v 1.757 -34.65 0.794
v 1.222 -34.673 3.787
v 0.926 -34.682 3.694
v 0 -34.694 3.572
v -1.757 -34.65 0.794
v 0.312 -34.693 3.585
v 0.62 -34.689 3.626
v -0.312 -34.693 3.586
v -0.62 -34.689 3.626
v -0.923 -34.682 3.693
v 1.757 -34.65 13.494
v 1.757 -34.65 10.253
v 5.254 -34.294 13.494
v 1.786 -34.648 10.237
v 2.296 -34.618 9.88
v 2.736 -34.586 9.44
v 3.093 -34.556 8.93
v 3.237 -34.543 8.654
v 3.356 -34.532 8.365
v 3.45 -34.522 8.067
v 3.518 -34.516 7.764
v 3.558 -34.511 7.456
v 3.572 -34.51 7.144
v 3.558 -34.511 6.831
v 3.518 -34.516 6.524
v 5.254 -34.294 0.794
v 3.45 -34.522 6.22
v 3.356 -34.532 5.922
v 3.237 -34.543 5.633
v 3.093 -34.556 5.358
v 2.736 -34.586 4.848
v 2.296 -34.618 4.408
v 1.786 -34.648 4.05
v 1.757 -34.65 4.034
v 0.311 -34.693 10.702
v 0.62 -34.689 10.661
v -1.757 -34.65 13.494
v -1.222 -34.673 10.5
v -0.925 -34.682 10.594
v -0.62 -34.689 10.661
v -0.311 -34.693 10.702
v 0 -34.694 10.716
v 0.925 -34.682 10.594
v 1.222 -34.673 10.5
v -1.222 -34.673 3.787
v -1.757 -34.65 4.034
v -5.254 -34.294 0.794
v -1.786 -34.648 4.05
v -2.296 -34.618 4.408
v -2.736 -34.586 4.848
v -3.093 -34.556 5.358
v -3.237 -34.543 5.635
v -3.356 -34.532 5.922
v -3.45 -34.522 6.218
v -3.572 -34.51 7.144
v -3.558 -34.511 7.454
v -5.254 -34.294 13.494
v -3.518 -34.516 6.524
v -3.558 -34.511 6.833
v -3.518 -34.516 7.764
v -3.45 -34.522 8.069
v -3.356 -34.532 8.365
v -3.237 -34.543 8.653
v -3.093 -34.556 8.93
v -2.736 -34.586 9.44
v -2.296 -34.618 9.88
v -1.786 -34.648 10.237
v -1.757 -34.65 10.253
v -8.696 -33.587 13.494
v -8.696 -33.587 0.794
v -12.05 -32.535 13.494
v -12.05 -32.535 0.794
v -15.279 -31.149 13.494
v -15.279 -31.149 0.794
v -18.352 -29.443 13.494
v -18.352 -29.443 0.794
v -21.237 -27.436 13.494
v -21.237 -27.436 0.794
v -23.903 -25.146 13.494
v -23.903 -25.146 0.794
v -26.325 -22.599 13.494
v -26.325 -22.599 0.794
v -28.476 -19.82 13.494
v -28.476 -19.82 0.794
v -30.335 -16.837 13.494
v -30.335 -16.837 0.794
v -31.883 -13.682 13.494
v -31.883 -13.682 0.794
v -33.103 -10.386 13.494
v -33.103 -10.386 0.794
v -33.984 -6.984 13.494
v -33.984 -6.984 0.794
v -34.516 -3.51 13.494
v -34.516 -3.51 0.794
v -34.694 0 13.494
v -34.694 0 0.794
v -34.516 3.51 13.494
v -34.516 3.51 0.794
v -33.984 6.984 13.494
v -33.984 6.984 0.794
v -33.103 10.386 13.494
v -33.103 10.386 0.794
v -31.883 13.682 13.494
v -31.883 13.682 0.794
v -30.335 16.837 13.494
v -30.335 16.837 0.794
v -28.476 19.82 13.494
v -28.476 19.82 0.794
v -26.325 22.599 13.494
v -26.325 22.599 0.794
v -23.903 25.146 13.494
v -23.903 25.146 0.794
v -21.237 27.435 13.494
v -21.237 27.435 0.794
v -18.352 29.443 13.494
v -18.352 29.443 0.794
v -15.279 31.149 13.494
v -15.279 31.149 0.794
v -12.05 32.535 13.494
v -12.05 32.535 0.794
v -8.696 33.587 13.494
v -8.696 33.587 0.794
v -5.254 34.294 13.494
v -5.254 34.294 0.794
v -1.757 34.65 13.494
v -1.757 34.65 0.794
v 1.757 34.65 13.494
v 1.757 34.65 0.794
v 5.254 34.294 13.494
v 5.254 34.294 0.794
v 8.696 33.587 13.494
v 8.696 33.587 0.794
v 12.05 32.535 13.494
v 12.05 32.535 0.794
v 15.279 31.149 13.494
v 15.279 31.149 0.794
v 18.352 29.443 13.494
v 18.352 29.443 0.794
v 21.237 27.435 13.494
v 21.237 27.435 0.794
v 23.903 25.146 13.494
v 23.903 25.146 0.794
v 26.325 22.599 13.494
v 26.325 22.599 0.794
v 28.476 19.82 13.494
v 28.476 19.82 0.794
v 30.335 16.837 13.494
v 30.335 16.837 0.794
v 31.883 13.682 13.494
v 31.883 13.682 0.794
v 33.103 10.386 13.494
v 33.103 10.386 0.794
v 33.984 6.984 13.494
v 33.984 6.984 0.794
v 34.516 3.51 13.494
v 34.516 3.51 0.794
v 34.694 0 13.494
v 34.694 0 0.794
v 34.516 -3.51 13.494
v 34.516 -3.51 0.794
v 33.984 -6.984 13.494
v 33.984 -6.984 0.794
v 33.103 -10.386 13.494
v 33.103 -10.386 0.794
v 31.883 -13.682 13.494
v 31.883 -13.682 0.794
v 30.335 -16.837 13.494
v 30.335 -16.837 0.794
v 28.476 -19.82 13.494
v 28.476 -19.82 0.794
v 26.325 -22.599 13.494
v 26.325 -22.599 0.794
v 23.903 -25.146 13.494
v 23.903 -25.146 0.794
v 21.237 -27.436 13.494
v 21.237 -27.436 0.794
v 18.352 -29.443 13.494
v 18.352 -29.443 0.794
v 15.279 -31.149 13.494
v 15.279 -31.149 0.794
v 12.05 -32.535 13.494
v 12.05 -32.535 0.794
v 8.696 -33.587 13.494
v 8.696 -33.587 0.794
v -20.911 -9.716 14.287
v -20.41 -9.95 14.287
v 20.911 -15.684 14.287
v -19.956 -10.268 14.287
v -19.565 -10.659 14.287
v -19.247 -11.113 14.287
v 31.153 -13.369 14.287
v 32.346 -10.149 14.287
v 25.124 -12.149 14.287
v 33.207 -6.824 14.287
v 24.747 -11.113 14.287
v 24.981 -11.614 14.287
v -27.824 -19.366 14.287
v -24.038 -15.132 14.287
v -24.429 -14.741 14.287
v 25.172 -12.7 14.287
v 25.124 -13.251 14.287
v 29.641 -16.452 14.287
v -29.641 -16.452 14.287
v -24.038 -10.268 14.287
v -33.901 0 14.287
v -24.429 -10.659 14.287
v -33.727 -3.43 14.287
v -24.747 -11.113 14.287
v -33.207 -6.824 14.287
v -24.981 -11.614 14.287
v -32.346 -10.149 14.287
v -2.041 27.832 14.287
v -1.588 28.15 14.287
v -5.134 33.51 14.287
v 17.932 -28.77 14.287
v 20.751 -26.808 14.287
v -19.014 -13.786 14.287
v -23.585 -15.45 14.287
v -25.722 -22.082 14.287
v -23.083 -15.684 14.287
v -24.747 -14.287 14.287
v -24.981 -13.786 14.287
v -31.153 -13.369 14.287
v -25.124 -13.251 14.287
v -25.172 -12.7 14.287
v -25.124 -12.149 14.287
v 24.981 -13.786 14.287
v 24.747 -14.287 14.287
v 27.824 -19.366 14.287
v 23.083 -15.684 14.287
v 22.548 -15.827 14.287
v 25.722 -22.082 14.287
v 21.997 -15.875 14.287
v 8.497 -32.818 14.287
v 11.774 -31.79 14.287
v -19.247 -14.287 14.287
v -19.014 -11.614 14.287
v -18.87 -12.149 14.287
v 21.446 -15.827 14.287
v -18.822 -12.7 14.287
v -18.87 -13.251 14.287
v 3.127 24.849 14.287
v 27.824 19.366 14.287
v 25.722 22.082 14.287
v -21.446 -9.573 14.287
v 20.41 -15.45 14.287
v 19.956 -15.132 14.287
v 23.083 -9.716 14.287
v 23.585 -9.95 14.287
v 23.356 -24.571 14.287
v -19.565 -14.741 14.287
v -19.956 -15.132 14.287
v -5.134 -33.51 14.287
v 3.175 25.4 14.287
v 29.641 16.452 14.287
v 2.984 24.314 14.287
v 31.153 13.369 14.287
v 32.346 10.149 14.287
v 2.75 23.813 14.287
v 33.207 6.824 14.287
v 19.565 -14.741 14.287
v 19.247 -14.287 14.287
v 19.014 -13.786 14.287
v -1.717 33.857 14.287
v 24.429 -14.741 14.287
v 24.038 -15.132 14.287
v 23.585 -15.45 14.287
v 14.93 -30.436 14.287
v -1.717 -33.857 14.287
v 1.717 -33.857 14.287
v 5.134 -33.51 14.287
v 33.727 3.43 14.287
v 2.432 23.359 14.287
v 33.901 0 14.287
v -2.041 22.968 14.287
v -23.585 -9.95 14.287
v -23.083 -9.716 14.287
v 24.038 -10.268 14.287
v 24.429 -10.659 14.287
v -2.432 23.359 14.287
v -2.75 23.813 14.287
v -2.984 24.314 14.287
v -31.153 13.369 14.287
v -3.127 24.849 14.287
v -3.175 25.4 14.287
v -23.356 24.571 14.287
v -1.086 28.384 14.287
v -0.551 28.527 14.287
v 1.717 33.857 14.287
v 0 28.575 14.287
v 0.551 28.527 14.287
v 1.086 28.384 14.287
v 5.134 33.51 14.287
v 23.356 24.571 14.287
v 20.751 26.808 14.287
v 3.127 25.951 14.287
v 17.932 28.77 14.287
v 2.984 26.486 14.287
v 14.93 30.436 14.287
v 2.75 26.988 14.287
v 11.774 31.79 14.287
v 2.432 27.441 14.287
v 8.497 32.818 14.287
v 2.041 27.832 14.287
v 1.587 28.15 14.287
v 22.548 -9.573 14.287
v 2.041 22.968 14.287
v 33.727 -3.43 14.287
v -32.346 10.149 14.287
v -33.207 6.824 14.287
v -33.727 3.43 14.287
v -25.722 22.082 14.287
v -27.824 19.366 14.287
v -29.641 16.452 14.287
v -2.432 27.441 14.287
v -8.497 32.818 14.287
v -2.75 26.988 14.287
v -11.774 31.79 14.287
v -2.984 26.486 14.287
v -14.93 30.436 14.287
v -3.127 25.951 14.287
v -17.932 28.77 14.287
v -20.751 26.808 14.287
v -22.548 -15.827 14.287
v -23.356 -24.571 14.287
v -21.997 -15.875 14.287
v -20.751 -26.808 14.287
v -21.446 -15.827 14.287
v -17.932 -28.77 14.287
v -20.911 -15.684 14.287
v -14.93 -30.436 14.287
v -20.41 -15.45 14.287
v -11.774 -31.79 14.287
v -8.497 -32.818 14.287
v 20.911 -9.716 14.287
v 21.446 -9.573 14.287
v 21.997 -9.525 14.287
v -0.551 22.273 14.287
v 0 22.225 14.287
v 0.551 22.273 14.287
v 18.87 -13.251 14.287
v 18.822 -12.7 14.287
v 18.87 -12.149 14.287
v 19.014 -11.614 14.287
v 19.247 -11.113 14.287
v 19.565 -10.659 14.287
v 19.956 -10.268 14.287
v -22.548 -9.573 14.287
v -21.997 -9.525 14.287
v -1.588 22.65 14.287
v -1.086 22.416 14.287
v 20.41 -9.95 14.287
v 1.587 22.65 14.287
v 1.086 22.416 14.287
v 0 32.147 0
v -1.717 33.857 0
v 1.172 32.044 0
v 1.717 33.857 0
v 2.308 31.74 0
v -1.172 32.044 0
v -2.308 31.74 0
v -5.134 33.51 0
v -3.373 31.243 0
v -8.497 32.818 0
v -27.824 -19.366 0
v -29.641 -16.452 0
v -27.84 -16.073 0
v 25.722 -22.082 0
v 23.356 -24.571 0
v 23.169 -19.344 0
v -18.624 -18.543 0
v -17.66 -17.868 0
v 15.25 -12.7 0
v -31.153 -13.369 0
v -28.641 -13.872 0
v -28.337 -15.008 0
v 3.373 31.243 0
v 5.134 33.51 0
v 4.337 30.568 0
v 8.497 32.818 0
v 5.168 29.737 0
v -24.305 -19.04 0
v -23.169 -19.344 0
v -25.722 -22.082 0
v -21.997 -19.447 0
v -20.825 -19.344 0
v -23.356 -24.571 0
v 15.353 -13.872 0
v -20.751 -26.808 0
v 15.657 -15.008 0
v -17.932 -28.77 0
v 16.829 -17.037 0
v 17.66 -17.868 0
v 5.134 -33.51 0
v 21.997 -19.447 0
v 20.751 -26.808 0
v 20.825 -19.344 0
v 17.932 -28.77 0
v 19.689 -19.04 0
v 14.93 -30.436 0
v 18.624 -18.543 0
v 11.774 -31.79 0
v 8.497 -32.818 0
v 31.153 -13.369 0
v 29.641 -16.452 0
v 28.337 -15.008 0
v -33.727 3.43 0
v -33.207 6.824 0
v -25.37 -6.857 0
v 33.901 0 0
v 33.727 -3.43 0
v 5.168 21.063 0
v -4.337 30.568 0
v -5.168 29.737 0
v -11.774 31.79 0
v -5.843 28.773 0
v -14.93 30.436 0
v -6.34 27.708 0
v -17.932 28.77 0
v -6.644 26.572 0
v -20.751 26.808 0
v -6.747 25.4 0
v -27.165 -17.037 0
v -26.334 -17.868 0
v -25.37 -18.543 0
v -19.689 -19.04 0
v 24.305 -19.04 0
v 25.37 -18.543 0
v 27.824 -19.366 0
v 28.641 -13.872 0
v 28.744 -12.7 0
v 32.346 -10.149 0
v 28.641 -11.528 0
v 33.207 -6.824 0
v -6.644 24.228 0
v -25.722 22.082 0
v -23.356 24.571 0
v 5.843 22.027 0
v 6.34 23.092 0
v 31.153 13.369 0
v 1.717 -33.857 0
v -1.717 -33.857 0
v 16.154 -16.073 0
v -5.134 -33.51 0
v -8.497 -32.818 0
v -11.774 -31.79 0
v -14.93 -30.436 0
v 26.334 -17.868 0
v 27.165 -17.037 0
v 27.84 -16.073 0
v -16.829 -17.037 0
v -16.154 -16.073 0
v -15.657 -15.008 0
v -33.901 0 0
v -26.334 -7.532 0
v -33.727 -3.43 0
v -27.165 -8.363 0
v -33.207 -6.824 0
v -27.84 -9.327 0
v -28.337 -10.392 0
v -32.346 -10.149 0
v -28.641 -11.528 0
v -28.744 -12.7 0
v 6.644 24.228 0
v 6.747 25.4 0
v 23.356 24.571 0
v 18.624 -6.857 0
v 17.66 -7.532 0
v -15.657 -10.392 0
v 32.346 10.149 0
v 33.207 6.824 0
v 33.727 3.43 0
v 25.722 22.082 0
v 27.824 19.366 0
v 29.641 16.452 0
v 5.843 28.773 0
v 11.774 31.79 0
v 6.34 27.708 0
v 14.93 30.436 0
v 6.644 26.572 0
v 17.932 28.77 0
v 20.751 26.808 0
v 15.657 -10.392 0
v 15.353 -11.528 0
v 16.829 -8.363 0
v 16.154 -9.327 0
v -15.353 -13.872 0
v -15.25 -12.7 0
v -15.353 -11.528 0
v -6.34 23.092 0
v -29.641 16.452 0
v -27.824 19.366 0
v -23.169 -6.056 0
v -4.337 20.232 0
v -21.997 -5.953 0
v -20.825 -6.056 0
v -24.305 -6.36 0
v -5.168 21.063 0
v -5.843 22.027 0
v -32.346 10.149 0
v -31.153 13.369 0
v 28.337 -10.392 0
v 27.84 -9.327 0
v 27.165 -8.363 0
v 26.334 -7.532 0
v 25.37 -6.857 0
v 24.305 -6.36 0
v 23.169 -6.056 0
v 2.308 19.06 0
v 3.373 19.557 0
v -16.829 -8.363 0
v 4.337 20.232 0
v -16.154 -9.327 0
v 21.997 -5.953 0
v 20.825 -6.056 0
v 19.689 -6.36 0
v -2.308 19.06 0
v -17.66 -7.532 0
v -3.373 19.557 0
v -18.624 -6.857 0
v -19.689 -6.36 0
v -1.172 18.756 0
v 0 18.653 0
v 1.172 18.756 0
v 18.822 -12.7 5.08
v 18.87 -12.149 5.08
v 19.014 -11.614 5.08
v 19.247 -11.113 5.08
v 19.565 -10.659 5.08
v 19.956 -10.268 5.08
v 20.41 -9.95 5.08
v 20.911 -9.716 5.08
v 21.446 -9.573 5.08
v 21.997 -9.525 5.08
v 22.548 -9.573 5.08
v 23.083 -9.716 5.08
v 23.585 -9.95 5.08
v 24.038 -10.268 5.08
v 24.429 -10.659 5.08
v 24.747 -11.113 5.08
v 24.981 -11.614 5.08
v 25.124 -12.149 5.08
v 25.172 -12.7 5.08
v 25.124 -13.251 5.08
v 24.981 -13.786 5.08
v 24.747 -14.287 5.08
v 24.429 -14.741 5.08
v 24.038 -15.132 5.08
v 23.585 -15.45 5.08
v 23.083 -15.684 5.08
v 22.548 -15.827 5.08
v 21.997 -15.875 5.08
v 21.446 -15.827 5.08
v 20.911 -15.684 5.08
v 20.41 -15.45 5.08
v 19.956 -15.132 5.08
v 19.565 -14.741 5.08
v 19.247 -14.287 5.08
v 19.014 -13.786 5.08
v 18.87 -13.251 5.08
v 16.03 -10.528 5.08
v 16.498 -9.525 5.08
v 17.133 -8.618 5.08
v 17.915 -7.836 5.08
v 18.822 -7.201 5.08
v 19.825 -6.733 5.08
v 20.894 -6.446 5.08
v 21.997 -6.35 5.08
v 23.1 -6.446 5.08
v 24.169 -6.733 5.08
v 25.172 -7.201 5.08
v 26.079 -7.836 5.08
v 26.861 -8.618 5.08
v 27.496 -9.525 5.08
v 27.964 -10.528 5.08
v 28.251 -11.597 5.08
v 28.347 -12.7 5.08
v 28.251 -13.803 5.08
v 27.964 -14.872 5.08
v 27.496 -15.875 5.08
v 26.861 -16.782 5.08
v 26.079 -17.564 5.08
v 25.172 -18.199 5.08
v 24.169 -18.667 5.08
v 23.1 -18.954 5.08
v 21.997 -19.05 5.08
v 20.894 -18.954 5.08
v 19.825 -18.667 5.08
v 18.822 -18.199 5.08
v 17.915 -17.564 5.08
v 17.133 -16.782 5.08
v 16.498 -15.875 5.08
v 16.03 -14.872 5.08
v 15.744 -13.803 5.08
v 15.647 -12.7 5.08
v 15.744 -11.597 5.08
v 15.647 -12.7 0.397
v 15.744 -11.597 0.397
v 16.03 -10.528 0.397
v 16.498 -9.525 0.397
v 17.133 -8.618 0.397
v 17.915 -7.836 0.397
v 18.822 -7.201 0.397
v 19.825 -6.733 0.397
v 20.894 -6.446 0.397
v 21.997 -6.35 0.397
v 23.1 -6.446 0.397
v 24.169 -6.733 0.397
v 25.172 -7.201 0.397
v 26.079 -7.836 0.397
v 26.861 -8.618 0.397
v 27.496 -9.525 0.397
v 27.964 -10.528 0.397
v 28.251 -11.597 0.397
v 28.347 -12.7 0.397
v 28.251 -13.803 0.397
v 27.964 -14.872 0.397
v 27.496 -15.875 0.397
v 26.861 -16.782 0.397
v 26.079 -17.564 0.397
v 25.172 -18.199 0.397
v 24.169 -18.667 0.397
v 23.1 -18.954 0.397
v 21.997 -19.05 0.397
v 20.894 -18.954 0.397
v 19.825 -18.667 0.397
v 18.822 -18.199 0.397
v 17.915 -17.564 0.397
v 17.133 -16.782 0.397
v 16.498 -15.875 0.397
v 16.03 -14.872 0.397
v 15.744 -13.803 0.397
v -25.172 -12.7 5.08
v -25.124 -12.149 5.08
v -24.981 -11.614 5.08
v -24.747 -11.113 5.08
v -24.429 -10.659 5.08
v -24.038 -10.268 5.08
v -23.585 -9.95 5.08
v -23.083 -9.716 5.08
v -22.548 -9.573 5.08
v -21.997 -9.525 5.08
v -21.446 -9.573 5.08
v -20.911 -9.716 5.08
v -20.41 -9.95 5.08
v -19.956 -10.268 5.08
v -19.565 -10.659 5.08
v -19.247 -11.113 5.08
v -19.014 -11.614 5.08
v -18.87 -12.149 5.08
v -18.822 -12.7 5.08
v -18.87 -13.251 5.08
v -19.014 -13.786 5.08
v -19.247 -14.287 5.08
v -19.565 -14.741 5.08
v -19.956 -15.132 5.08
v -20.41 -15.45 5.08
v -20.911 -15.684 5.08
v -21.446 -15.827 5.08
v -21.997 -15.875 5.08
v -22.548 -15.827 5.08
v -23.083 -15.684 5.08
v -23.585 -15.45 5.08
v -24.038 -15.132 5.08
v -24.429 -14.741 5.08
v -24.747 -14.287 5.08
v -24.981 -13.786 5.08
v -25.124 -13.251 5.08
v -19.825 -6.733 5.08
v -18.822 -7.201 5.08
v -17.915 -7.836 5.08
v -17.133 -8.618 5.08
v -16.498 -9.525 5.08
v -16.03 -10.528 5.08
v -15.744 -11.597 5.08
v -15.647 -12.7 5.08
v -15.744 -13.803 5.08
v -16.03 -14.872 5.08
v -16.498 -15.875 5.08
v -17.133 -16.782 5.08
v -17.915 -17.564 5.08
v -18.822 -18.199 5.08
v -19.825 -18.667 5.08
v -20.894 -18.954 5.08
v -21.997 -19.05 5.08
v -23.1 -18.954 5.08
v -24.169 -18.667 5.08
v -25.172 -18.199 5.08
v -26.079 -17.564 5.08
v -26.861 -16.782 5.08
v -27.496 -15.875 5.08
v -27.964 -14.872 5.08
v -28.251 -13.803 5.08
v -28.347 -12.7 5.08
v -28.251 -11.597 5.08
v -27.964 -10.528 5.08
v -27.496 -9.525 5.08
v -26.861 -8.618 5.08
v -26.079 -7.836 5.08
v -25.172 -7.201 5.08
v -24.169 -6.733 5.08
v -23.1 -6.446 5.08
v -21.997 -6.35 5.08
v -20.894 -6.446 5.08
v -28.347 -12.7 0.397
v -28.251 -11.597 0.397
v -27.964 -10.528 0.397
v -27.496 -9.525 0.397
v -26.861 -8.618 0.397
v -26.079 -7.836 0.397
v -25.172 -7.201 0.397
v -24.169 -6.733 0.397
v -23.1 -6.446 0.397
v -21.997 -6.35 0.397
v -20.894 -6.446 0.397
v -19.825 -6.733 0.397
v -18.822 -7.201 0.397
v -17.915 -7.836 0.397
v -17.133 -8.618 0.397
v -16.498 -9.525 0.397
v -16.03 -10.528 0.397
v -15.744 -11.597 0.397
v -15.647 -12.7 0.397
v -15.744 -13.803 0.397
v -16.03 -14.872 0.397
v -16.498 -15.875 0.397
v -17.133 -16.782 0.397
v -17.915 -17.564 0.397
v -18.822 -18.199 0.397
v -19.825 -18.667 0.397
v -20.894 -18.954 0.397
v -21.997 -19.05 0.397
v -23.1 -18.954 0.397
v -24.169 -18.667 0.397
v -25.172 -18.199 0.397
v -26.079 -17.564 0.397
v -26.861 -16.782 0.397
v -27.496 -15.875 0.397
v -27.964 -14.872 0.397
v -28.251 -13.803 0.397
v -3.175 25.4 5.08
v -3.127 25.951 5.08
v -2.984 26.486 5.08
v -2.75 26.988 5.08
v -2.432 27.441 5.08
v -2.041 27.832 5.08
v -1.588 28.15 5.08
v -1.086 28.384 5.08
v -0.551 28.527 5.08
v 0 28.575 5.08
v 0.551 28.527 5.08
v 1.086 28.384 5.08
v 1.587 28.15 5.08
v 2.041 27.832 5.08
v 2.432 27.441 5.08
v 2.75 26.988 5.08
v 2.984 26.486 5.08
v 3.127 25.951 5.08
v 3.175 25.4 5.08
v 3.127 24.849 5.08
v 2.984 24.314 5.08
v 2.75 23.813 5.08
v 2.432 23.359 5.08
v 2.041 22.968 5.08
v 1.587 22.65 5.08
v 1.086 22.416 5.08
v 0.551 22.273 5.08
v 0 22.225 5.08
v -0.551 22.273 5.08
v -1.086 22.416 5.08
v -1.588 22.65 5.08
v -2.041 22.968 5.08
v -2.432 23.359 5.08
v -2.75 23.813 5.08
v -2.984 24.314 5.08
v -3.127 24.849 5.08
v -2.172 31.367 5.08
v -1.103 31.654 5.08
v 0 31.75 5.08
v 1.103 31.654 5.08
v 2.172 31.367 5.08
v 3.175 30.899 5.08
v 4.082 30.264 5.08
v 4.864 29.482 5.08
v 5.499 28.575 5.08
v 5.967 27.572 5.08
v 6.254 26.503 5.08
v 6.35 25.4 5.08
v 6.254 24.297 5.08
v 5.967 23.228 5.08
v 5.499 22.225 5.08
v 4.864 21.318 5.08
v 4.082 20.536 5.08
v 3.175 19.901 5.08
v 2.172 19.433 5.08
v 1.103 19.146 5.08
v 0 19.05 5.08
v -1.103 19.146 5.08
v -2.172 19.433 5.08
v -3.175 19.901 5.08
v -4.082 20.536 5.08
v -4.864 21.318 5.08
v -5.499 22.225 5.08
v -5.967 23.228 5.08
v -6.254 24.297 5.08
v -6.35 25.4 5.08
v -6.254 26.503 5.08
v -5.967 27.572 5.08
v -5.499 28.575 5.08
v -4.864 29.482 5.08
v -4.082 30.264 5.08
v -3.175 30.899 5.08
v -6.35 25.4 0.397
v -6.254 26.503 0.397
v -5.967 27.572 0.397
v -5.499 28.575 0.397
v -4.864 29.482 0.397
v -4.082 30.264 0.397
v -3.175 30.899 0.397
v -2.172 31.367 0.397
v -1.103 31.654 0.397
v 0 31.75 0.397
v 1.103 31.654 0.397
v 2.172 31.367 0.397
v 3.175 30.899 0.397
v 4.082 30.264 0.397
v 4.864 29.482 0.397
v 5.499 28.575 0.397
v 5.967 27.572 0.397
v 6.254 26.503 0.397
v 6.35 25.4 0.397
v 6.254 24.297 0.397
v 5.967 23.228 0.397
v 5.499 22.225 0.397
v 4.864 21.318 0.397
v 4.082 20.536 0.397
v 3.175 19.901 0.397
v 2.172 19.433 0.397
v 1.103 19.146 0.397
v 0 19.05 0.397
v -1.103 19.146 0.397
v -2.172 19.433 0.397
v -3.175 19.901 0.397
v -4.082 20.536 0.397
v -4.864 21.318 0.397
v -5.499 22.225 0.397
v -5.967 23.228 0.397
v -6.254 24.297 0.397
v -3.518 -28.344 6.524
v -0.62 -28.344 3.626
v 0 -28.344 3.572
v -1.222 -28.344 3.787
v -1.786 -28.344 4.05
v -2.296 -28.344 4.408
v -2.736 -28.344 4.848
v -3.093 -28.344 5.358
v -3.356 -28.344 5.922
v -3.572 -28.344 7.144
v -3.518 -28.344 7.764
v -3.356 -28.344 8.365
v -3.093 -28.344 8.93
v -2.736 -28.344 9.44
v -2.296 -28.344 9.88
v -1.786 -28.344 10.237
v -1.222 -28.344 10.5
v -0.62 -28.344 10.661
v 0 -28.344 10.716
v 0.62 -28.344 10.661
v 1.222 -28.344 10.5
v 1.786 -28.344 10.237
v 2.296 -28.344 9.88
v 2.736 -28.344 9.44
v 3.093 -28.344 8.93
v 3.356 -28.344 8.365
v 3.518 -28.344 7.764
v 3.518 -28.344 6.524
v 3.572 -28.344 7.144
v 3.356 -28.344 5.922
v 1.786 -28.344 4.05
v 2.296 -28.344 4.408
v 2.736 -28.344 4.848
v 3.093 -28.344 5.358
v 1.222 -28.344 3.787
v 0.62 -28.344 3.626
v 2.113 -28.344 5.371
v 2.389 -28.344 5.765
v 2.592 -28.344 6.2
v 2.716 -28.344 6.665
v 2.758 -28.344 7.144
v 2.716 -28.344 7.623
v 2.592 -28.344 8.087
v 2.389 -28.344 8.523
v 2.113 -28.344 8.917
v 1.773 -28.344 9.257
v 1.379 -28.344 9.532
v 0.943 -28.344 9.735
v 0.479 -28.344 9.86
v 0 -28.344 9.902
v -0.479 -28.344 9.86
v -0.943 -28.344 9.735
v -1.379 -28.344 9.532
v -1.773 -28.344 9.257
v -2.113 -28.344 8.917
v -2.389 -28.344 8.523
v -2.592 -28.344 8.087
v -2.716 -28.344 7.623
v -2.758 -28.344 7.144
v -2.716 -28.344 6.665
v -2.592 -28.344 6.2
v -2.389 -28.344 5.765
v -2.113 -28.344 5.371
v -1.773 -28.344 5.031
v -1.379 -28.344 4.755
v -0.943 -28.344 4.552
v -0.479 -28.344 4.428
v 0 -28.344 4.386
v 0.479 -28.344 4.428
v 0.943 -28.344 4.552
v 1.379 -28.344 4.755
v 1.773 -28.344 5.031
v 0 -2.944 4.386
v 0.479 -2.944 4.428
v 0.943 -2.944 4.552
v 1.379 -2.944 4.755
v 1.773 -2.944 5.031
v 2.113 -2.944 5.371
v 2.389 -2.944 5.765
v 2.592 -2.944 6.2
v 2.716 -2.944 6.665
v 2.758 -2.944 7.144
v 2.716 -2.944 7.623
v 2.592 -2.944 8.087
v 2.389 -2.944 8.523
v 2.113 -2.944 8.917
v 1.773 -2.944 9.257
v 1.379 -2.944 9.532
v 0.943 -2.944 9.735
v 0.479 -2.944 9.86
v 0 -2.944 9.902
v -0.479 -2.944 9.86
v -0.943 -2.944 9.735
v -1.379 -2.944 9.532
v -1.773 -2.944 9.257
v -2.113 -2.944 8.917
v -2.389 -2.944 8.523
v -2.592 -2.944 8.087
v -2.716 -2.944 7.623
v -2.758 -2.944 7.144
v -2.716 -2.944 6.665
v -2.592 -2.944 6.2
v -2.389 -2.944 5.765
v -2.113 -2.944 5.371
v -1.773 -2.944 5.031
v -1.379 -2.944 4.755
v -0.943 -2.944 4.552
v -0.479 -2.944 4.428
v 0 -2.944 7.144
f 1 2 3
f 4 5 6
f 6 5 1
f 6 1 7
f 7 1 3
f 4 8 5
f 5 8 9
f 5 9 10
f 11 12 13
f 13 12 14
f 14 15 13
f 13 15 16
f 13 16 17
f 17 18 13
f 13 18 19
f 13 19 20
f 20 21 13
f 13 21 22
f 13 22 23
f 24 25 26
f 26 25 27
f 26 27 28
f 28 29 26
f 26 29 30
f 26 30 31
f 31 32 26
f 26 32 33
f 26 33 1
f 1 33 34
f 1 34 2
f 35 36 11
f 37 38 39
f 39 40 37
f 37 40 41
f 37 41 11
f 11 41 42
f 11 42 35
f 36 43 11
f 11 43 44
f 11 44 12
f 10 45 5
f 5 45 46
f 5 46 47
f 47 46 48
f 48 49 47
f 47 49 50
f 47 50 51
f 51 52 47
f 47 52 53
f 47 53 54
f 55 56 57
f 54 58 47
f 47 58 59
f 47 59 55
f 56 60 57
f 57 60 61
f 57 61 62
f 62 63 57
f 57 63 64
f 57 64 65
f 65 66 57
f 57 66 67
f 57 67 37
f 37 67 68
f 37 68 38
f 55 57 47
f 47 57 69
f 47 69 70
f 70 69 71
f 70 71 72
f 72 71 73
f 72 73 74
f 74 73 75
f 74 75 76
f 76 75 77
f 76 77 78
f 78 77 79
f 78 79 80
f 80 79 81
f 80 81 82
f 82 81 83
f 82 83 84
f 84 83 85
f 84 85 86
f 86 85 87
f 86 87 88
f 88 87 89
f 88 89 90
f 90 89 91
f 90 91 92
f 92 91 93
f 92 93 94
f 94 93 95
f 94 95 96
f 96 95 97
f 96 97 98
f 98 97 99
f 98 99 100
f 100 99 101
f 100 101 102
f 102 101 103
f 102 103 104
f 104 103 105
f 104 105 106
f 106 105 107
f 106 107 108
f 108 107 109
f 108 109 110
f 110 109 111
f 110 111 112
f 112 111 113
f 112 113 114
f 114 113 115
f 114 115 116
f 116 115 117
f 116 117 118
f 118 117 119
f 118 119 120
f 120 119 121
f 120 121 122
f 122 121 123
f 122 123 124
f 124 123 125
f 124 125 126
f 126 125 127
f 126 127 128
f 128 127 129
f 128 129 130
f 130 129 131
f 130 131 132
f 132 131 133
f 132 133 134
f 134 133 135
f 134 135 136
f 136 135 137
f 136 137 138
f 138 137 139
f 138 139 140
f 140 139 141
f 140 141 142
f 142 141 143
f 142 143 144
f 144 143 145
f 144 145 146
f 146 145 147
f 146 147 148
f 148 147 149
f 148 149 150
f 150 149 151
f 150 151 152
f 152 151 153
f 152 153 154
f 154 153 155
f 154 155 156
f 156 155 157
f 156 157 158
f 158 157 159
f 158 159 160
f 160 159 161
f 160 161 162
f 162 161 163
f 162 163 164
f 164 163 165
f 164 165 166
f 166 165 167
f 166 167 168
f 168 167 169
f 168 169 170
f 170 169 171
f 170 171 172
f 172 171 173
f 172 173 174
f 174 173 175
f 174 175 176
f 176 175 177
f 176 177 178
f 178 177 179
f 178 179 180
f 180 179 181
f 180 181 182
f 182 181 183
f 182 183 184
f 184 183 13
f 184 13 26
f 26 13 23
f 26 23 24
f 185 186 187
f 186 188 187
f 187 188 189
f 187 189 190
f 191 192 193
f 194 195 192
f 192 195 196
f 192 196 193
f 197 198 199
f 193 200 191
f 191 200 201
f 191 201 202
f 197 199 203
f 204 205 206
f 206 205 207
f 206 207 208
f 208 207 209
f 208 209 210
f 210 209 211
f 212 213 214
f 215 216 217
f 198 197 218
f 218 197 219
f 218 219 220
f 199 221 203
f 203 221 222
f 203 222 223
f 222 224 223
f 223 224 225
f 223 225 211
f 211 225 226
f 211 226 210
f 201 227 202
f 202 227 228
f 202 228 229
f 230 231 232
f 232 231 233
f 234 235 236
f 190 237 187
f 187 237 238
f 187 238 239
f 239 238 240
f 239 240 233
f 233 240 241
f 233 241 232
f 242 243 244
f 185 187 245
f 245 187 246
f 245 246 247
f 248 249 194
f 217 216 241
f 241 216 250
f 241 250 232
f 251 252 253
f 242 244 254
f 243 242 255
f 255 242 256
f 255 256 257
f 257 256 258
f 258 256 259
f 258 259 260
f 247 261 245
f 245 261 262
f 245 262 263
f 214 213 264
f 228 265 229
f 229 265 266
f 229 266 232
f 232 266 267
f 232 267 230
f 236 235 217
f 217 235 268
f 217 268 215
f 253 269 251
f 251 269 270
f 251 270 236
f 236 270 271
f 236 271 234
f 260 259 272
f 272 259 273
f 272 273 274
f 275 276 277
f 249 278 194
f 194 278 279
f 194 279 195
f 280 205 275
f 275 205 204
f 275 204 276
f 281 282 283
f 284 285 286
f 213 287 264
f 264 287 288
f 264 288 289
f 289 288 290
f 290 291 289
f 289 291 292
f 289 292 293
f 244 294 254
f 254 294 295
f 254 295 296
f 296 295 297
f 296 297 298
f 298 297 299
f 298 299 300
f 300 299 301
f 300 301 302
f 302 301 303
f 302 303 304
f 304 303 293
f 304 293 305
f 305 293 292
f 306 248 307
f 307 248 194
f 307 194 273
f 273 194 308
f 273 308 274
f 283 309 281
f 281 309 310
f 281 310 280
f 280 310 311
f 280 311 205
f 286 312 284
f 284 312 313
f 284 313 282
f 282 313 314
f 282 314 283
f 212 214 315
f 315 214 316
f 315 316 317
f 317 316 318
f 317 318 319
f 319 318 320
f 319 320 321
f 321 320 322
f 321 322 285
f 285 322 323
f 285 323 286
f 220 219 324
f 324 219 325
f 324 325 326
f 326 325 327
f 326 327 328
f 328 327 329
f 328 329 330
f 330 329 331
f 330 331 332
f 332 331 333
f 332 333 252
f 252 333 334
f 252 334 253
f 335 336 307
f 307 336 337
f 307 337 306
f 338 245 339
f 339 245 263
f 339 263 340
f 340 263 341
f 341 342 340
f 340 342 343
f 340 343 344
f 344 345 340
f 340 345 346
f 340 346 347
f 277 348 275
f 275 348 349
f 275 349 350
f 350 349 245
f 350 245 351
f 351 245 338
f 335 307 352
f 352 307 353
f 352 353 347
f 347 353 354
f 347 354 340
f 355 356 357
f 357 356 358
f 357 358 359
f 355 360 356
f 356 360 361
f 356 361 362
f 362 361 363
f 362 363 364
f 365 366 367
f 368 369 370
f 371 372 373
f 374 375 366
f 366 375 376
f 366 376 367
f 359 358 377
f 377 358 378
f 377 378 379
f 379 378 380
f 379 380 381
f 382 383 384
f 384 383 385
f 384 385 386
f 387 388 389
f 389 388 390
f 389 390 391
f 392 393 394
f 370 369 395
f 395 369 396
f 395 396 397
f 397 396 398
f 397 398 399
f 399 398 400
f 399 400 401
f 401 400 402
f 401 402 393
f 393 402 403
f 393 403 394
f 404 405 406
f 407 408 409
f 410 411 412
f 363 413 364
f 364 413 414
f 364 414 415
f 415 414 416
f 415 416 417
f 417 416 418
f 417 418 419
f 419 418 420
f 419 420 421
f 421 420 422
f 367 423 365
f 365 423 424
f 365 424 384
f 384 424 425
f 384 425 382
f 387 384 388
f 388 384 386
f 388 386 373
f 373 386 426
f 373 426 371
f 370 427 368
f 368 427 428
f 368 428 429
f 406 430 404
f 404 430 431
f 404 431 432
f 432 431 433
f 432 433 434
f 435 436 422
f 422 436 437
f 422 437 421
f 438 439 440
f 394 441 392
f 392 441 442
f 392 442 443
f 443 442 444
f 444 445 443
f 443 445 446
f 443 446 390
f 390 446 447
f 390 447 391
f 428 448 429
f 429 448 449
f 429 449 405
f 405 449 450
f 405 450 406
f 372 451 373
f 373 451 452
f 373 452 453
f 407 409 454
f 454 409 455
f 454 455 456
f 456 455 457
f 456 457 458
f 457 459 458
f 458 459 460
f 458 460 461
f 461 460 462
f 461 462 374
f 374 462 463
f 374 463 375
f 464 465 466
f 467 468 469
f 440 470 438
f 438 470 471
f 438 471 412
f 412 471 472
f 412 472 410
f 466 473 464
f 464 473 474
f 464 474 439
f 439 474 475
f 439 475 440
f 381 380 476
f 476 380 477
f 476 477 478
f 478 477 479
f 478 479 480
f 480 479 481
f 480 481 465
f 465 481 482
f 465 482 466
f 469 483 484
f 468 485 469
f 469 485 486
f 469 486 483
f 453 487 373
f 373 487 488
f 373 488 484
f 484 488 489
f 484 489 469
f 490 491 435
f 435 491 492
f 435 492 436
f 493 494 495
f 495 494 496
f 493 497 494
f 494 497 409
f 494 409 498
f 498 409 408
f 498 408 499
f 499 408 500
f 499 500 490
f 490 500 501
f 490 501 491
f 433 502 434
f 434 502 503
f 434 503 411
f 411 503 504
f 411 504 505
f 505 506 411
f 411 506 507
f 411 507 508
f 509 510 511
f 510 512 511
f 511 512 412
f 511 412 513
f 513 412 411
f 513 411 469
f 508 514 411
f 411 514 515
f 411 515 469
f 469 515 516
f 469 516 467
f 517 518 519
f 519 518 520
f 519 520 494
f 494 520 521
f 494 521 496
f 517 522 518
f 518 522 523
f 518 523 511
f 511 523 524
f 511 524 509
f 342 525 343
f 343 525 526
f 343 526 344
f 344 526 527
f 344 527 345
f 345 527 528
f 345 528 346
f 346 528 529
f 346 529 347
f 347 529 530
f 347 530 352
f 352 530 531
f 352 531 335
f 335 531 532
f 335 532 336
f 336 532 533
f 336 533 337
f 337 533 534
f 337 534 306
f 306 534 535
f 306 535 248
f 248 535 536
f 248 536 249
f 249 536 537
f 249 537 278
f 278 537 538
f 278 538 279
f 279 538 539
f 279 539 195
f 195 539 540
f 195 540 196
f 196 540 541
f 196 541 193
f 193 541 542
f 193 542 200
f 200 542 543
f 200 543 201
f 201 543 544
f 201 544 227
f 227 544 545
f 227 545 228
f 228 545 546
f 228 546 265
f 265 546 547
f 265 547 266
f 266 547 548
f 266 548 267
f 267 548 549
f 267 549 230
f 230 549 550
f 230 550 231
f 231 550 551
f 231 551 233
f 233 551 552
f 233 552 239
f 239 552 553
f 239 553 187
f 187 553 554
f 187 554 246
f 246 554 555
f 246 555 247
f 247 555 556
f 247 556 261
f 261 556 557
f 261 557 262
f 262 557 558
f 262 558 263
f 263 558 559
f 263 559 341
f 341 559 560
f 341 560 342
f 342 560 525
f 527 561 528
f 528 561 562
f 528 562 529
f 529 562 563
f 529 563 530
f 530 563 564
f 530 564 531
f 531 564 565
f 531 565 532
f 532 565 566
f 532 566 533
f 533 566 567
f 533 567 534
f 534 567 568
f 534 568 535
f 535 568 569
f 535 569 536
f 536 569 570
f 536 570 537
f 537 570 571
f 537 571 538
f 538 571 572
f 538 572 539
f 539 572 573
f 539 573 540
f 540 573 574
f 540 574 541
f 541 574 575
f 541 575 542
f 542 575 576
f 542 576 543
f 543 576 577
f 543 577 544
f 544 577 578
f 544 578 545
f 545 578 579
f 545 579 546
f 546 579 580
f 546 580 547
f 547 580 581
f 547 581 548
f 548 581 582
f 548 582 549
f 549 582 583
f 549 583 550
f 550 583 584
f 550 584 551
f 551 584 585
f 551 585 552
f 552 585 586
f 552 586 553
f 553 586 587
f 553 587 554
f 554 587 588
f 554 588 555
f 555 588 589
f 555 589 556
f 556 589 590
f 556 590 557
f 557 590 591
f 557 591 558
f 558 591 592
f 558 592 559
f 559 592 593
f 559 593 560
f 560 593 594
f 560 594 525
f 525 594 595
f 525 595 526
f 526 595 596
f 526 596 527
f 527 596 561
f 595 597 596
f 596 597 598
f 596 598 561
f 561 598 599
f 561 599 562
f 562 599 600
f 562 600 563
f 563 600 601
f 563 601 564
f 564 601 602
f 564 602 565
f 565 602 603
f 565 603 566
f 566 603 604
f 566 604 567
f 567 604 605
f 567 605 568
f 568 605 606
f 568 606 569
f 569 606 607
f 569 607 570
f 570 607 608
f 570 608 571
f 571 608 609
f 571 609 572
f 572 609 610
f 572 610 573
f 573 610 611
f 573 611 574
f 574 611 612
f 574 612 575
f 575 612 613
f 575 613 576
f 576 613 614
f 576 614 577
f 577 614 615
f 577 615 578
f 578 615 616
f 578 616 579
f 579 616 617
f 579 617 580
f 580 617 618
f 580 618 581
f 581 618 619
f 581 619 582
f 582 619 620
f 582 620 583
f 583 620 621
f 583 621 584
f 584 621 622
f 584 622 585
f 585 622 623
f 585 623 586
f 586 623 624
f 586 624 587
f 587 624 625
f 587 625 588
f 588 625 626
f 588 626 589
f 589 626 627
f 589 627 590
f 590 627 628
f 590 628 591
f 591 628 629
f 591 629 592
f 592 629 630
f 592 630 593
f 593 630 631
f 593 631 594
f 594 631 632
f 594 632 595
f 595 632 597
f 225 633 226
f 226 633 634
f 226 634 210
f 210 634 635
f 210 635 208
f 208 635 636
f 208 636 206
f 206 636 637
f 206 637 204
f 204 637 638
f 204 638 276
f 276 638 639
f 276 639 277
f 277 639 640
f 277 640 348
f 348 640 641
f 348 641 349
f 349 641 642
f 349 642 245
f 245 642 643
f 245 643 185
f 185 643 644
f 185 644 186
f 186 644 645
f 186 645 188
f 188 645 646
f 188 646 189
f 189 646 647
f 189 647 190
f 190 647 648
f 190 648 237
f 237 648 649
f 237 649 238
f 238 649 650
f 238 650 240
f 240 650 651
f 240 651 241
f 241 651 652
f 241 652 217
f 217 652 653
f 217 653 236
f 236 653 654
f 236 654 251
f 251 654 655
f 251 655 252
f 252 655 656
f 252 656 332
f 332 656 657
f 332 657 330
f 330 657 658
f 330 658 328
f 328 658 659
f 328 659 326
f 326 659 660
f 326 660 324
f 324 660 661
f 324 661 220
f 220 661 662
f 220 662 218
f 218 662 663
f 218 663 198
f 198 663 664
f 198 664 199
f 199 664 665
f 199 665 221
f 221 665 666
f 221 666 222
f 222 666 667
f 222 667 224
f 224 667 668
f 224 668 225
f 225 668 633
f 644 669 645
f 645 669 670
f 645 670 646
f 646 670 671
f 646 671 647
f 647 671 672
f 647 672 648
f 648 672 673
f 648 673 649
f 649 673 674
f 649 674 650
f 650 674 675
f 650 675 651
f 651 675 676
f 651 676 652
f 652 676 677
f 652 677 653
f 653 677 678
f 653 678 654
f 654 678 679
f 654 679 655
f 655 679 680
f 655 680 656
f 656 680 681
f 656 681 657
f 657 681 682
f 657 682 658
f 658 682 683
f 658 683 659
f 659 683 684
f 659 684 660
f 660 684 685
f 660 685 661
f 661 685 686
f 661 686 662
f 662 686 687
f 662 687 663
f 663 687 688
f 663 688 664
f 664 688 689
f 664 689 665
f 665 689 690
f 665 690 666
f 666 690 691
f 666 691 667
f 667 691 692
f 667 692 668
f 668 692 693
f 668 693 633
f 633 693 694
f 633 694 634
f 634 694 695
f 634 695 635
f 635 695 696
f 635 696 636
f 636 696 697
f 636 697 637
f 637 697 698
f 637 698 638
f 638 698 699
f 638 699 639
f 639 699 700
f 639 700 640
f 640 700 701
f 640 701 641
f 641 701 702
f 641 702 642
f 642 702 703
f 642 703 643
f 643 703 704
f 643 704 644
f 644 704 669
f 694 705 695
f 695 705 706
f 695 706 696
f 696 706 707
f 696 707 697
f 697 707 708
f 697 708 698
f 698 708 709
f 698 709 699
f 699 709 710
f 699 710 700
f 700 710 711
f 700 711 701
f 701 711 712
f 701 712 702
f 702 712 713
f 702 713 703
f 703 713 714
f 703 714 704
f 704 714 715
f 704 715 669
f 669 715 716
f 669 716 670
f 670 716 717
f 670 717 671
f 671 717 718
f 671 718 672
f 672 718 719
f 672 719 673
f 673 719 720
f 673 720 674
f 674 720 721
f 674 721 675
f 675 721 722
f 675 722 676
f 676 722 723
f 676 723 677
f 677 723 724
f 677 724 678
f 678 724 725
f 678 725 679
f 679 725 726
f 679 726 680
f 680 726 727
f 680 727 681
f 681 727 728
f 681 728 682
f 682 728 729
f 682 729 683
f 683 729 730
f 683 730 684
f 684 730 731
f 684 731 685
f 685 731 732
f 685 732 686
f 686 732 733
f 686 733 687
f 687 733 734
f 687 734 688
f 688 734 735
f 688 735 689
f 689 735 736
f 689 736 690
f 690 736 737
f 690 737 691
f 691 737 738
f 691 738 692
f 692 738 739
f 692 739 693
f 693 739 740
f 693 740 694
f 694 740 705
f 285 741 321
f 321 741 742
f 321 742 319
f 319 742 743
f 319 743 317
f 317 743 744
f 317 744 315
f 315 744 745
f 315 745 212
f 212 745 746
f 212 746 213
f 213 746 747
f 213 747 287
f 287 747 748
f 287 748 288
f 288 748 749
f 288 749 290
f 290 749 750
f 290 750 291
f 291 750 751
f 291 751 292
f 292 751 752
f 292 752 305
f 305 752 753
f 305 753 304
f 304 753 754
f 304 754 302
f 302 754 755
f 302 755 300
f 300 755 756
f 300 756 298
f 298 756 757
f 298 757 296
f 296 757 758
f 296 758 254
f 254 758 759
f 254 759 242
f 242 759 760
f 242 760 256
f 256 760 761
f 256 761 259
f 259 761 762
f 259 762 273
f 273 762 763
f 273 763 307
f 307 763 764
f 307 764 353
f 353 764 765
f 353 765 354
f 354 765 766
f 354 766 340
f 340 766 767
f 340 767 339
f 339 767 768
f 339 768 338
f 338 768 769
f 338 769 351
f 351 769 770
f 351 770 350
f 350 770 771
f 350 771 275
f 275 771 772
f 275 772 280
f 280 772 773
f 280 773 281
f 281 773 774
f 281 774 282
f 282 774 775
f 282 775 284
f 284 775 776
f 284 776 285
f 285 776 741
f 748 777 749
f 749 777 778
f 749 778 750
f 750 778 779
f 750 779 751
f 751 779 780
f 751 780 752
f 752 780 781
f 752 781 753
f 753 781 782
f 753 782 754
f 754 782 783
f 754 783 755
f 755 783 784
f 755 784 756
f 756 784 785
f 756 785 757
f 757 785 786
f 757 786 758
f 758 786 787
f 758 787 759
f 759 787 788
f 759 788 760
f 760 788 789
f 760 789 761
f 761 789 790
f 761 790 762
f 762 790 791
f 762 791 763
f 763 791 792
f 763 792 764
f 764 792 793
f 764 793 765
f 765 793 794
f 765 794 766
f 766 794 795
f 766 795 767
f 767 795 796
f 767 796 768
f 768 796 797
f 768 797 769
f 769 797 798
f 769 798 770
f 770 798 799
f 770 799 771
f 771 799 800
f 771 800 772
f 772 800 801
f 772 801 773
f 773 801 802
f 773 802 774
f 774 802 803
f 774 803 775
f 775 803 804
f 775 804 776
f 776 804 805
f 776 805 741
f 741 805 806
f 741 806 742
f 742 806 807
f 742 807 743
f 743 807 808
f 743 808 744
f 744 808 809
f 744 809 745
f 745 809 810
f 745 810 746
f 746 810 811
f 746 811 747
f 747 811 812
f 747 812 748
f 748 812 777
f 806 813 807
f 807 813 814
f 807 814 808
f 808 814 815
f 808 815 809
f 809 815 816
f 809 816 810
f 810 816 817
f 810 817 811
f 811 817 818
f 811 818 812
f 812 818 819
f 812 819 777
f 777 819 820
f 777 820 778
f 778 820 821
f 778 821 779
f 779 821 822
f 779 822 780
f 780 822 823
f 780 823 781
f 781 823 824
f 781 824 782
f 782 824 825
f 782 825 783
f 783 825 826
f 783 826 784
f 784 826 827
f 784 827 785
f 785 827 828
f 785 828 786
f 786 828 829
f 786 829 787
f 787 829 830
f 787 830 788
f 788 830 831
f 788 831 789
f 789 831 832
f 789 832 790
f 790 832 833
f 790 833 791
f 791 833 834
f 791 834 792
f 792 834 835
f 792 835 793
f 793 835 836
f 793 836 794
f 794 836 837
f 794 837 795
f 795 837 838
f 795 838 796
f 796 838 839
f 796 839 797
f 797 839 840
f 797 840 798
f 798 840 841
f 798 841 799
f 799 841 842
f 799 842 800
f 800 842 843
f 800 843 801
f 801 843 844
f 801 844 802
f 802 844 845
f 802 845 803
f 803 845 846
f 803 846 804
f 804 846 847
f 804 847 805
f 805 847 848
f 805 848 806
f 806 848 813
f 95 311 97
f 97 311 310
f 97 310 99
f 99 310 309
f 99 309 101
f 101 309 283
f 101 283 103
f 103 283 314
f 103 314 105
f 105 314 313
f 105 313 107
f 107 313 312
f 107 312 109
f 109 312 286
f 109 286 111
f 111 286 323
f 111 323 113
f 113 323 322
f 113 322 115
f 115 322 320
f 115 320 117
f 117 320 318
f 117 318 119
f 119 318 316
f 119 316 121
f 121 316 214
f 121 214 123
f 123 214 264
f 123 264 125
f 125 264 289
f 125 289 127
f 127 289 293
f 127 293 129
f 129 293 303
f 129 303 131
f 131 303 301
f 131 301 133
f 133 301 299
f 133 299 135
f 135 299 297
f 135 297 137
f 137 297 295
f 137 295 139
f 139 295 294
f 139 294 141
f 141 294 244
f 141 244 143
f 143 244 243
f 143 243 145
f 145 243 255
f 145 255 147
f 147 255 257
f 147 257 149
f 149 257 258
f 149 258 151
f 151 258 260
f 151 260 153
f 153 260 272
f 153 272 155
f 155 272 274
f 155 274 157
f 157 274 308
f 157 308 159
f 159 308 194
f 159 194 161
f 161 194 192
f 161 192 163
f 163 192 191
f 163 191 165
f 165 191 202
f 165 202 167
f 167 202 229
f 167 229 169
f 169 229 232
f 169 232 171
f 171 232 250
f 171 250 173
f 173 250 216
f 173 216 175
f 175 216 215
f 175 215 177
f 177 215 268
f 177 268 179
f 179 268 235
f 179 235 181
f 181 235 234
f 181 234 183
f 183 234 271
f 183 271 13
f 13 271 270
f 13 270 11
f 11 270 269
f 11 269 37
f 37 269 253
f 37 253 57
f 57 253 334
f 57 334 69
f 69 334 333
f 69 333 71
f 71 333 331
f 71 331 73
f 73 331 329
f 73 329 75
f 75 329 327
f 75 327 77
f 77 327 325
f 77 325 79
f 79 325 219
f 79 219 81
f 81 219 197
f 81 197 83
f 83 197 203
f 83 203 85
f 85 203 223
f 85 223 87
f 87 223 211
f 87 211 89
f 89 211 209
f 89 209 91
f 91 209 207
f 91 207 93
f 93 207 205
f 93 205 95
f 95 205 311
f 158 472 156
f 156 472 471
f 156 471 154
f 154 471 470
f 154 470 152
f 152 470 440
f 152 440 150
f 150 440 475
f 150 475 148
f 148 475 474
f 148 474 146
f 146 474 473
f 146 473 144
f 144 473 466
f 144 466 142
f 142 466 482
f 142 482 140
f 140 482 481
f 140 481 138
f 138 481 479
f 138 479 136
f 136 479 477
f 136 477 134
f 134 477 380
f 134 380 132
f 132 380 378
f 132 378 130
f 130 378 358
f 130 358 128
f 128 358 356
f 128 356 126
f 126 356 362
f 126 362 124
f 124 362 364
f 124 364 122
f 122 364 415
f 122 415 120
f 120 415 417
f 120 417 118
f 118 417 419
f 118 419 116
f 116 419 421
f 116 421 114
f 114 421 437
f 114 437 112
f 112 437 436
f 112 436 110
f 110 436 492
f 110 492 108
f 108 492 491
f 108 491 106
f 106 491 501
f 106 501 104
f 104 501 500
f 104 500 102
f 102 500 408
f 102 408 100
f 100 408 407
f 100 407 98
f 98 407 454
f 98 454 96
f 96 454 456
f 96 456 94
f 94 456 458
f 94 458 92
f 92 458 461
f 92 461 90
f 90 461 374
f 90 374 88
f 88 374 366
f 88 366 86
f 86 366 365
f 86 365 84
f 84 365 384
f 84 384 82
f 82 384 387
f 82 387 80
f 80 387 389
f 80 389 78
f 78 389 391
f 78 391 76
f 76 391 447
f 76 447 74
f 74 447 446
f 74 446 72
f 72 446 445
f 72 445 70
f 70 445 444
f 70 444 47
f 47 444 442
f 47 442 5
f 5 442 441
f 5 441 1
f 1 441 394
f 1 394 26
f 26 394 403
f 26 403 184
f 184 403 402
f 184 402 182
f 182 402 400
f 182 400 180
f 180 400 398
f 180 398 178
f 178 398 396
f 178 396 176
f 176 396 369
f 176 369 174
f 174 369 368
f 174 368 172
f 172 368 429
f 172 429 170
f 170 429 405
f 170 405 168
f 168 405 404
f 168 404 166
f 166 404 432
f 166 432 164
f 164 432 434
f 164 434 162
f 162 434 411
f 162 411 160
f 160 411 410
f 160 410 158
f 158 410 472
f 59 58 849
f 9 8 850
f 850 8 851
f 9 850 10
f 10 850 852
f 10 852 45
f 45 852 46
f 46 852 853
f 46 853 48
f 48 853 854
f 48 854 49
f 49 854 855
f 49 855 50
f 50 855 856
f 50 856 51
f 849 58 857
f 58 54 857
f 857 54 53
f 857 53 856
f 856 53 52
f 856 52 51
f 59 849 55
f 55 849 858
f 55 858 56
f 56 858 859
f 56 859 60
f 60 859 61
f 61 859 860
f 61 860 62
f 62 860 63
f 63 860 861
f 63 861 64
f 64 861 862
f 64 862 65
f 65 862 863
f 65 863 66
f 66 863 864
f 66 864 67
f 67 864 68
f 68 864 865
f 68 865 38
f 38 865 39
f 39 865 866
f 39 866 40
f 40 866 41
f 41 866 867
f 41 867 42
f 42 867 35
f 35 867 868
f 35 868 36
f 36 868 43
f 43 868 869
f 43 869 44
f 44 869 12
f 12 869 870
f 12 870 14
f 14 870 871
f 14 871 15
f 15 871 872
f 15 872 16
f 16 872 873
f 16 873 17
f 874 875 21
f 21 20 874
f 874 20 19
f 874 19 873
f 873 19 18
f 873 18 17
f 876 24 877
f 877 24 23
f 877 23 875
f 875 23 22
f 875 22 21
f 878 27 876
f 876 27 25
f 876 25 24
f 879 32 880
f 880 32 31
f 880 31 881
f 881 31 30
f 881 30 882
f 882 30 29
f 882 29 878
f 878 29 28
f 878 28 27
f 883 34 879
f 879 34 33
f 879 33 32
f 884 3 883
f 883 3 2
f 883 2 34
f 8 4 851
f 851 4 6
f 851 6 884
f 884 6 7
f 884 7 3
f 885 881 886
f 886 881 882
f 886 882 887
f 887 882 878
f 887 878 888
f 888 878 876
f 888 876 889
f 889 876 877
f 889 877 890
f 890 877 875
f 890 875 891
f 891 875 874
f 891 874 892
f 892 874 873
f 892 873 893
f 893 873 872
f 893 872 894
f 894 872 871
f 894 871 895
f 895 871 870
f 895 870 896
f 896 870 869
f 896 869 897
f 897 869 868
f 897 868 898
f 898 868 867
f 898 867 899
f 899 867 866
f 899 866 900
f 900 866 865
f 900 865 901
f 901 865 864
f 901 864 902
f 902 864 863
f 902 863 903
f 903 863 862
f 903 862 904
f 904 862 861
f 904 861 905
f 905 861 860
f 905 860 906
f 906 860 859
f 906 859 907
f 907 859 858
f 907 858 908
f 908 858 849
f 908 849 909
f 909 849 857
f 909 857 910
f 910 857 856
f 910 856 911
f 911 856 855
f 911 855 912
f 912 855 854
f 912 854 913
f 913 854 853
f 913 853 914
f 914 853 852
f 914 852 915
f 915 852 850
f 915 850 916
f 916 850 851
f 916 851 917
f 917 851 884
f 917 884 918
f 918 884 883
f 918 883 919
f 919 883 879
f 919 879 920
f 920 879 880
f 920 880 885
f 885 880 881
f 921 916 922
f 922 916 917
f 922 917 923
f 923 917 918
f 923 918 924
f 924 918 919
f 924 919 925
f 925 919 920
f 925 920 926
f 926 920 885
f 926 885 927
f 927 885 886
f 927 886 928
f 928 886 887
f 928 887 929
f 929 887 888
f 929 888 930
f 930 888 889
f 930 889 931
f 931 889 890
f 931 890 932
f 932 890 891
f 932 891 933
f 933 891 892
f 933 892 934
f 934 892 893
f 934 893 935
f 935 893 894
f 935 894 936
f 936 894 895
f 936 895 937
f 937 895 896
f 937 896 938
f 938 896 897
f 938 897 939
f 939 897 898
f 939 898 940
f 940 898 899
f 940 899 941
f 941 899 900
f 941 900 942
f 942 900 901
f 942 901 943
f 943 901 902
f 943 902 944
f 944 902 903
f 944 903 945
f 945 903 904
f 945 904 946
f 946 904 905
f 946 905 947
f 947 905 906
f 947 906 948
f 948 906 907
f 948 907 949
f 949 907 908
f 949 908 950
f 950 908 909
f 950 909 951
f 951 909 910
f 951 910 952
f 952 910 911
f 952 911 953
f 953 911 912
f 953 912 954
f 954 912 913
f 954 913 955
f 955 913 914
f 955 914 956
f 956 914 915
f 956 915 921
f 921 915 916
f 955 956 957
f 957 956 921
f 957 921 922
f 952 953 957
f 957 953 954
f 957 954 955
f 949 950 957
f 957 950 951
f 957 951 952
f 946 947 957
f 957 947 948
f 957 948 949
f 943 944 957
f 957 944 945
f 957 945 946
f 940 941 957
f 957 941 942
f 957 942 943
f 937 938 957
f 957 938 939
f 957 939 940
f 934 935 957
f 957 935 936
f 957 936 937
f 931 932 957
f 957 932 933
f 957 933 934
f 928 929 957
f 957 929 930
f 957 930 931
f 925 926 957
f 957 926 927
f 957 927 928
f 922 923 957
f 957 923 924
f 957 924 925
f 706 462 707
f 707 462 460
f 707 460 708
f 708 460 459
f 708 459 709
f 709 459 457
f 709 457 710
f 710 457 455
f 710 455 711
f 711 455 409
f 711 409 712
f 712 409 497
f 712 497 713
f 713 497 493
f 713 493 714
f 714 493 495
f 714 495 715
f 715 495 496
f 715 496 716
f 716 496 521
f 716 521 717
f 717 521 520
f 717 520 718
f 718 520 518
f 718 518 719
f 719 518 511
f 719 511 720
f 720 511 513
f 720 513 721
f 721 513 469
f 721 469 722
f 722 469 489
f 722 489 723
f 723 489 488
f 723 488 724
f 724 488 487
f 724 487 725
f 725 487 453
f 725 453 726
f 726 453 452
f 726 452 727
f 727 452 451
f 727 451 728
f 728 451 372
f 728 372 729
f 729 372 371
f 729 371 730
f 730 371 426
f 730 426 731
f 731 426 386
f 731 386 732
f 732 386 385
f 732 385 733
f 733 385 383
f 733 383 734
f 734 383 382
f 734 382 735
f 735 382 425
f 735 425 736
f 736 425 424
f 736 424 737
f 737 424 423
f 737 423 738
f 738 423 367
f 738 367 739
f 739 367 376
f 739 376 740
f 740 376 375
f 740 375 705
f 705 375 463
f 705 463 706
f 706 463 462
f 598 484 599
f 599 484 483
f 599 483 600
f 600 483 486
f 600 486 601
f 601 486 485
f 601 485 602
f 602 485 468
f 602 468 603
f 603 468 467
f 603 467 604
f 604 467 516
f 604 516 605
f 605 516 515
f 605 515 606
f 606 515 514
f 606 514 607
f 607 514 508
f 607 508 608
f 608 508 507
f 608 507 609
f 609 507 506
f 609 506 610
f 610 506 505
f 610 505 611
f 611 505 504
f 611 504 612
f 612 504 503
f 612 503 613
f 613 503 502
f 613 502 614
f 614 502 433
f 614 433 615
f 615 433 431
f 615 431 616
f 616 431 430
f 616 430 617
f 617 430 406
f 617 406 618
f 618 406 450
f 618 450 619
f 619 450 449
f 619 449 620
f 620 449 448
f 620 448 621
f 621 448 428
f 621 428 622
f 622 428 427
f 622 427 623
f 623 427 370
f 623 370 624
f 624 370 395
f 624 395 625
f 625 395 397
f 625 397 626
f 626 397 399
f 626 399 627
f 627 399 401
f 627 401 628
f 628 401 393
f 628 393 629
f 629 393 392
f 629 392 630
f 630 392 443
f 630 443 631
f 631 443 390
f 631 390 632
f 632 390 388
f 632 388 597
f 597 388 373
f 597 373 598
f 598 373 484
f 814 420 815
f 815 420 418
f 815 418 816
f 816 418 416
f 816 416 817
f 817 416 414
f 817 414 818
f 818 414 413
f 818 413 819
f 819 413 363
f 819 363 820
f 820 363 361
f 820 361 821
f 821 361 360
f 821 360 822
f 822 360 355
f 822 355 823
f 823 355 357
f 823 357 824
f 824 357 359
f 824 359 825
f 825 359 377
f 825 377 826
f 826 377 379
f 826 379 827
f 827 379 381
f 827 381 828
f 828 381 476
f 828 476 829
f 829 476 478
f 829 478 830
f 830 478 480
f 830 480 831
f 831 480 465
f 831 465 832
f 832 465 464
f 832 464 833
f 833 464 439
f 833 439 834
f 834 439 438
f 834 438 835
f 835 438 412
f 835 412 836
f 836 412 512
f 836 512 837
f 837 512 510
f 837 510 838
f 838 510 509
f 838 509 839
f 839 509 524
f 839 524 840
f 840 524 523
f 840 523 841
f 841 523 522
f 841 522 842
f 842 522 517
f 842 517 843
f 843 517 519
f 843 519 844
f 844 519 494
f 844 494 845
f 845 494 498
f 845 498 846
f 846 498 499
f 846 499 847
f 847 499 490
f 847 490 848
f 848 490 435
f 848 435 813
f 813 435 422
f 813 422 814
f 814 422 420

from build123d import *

# Parameters (mm, degrees)
SKETCH1_R           = 34.694413408
BOSS_EXTRUDE1_DEPTH = 14.2875
HOLE1_OUTLINE_R     = 6.35
HOLE1_DEPTH         = 5.08
HOLE1_START         = 5.08
HOLE1_2_OUTLINE_R   = 3.175
HOLE1_2_DEPTH       = 9.2075
CHAMFER1_SIZE       = 0.79375
SKETCH9_R           = 3.571875
CUT_EXTRUDE1_DEPTH  = 6.35
SKETCH10_R          = 2.758039836
CUT_EXTRUDE2_DEPTH  = 25.4
CHAMFER2_SIZE       = 0.396875


# Read off the part's stored shape, not the designer's step: Hole1
with BuildPart() as part:
    # Sketch1 → Boss-Extrude1 (new body)
    with BuildSketch(Plane.XY):
        Circle(SKETCH1_R)
    extrude(amount=BOSS_EXTRUDE1_DEPTH)

    # Hole1 outline → Hole1 (cut)
    with BuildSketch(Plane.XY):
        with Locations((21.997045256, -12.7)):
            Circle(HOLE1_OUTLINE_R)
        with Locations((-21.997045256, -12.7)):
            Circle(HOLE1_OUTLINE_R)
        with Locations((0, 25.4)):
            Circle(HOLE1_OUTLINE_R)
    extrude(amount=HOLE1_DEPTH, mode=Mode.SUBTRACT)

    # Hole1 2 outline → Hole1 2 (cut)
    with BuildSketch(Plane.XY.offset(HOLE1_START)):
        with Locations((21.997045256, -12.7)):
            Circle(HOLE1_2_OUTLINE_R)
        with Locations((-21.997045256, -12.7)):
            Circle(HOLE1_2_OUTLINE_R)
        with Locations((0, 25.4)):
            Circle(HOLE1_2_OUTLINE_R)
    extrude(amount=HOLE1_2_DEPTH, mode=Mode.SUBTRACT)

    # Chamfer1
    chamfer1_edges = [part.edges().sort_by_distance(p)[0] for p in [
        (-34.694413408, 0, 0),
        (-34.694413408, 0, 14.2875),
    ]]
    chamfer(chamfer1_edges, length=CHAMFER1_SIZE)

    # Sketch9 → Cut-Extrude1 (cut)
    with BuildSketch(Plane(origin=(0, -34.694413408, 0), x_dir=(-1, 0, 0), z_dir=(0, -1, 0))):
        with Locations(Location((0, -7.14375, 0), (0, 0, 90))):
            Circle(SKETCH9_R)
    extrude(amount=-CUT_EXTRUDE1_DEPTH, mode=Mode.SUBTRACT)

    # Sketch10 → Cut-Extrude2 (cut)
    with BuildSketch(Plane(origin=(0, -28.344413408, 0), x_dir=(-1, 0, 0), z_dir=(0, -1, 0))):
        with Locations(Location((0, -7.14375, 0), (0, 0, 90))):
            Circle(SKETCH10_R)
    extrude(amount=-CUT_EXTRUDE2_DEPTH, mode=Mode.SUBTRACT)

    # Chamfer2
    chamfer2_edges = [part.edges().sort_by_distance(p)[0] for p in [
        (-28.347045256, -12.7, 0),
        (-6.35, 25.4, 0),
        (15.647045256, -12.7, 0),
    ]]
    chamfer(chamfer2_edges, length=CHAMFER2_SIZE)


solid = part.part
